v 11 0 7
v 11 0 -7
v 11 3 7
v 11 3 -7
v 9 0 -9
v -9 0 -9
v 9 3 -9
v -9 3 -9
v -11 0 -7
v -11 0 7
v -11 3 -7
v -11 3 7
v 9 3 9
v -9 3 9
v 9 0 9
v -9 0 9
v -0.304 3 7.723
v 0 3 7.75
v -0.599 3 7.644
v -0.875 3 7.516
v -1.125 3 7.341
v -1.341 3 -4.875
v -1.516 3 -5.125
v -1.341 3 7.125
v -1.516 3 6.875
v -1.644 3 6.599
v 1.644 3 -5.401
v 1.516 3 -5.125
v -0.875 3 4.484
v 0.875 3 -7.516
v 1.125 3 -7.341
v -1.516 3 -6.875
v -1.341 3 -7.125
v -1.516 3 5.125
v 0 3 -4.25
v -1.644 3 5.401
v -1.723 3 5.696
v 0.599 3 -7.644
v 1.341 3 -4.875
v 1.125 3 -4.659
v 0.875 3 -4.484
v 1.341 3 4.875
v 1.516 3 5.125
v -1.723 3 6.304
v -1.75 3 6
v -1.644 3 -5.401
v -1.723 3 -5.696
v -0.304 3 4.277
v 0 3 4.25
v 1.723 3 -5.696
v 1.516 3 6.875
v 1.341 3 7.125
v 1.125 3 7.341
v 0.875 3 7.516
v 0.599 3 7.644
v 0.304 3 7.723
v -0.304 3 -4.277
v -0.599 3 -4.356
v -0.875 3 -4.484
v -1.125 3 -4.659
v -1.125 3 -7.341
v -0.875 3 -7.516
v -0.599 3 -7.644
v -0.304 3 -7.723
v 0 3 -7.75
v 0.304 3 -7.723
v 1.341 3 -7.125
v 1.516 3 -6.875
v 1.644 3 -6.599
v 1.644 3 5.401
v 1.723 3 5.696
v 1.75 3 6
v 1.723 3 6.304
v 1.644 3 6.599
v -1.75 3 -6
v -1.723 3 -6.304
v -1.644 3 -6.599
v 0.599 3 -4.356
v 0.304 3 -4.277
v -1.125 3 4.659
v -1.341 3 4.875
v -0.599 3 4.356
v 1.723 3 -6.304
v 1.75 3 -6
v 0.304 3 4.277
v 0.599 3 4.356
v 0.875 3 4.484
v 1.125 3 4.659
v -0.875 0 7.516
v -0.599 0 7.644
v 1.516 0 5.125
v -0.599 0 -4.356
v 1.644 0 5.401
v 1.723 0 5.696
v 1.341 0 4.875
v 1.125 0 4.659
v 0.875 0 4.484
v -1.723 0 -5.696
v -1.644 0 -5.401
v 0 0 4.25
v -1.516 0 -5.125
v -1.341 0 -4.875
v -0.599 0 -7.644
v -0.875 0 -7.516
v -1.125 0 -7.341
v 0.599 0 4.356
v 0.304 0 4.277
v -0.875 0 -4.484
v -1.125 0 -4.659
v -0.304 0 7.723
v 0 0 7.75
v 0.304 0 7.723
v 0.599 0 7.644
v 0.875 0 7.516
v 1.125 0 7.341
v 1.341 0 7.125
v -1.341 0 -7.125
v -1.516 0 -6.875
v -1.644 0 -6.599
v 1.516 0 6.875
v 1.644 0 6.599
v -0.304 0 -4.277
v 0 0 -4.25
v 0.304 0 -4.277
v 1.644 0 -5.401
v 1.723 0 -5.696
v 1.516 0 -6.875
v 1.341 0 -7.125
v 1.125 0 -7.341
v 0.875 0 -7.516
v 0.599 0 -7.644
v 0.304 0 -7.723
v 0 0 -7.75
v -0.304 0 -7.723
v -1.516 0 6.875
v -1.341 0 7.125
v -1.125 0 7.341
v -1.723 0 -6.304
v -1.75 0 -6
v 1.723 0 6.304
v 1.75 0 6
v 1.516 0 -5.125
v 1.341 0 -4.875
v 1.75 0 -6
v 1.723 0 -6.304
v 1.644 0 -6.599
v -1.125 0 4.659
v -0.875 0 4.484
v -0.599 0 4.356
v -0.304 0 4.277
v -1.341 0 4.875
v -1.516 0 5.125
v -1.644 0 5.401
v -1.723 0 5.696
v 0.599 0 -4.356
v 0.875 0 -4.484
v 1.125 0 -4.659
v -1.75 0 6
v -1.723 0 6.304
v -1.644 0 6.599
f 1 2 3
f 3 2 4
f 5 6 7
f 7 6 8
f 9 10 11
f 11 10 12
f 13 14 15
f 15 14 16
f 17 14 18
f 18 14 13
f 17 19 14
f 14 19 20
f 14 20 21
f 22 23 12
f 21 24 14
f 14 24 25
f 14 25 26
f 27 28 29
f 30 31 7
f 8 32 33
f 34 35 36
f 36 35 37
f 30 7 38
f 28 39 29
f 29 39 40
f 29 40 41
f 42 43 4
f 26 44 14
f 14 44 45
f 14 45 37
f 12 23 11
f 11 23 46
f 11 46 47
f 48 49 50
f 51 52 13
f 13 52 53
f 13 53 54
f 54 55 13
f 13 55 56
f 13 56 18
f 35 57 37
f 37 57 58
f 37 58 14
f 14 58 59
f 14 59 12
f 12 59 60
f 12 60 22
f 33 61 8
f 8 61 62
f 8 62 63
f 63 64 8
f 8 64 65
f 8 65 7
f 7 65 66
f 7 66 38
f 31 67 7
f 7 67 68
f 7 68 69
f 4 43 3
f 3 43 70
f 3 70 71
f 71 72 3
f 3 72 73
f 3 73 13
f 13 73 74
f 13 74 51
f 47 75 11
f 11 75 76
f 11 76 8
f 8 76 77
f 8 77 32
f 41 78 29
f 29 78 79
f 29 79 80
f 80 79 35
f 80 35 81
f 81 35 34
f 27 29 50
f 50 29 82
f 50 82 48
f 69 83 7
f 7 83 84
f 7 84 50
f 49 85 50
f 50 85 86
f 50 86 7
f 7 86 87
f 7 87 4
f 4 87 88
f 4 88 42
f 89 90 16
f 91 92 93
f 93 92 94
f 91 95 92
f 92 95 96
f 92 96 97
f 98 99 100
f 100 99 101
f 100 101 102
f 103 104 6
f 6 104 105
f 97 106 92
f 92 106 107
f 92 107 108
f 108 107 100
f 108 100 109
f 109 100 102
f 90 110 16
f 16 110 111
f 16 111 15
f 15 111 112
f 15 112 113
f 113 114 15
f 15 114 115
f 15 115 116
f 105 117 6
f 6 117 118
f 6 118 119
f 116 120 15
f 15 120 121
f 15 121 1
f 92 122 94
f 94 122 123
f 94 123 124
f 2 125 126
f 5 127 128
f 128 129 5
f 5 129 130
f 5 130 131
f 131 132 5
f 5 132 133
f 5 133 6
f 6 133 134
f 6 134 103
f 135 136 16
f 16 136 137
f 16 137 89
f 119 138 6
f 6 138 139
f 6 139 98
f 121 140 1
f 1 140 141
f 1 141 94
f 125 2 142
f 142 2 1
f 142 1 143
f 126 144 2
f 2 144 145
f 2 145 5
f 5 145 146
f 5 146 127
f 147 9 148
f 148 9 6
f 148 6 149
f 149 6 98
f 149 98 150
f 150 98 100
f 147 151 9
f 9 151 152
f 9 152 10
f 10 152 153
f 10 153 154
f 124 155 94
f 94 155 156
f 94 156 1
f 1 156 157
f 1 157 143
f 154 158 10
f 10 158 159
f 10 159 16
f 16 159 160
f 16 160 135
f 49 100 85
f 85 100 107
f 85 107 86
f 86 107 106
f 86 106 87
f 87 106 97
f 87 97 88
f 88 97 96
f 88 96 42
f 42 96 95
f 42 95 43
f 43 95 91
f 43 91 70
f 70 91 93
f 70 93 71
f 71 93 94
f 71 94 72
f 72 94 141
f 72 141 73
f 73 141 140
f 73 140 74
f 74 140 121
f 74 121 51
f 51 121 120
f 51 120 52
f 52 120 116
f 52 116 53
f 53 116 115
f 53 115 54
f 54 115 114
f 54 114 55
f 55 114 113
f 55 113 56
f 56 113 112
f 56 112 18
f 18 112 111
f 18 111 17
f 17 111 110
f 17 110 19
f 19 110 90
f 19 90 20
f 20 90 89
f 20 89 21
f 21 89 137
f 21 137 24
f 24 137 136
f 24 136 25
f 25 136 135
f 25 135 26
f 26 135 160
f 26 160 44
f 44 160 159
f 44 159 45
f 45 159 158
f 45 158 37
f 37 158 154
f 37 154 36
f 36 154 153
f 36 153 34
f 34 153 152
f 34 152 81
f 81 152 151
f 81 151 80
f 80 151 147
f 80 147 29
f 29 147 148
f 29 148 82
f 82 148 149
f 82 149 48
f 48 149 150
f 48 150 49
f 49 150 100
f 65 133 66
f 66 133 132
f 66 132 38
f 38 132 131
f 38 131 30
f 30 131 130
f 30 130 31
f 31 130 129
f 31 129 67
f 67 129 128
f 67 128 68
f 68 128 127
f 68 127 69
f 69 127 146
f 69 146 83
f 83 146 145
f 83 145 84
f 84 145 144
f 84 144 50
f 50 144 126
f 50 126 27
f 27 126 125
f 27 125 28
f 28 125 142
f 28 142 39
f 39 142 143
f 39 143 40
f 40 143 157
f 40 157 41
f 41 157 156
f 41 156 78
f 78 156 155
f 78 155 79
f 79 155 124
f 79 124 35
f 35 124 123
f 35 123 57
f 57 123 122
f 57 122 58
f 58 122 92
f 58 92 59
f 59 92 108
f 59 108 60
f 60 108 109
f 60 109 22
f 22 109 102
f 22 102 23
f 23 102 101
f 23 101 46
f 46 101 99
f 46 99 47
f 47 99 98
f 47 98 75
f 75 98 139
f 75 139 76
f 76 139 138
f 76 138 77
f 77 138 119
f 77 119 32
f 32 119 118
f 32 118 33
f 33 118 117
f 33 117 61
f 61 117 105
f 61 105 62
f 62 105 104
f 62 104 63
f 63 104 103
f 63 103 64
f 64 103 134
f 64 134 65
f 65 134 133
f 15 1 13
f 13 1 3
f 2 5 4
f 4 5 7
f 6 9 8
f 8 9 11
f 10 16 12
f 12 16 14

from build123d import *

# Parameters (mm, degrees)
SKETCH1_W                      = 22
SKETCH1_H                      = 18
BOSS_EXTRUDE1_DEPTH            = 3
CUT_EXTRUDE1_REACH             = 5
SKETCH2_R                      = 1.75
CUT_EXTRUDE1_DIRECTION_2_DEPTH = 1
CHAMFER1_SIZE                  = 2


with BuildPart() as part:
    # Sketch1 → Boss-Extrude1 (new body)
    with BuildSketch(Plane(origin=(0, 0, 0), x_dir=(1, 0, 0), z_dir=(0, 1, 0))):
        Rectangle(SKETCH1_W, SKETCH1_H)
    extrude(amount=BOSS_EXTRUDE1_DEPTH)

    # Sketch2 → Cut-Extrude1 (cut, up to next)
    with BuildSketch(Plane(origin=(0, 3, 0), x_dir=(1, 0, 0), z_dir=(0, 1, 0)), mode=Mode.PRIVATE) as cut_extrude1_sk1:
        with Locations((0, 6)):
            Circle(SKETCH2_R)
    cut_extrude1_tool1 = extrude(cut_extrude1_sk1.sketch, amount=-CUT_EXTRUDE1_REACH, mode=Mode.PRIVATE) & part.part
    add(cut_extrude1_tool1.solids().sort_by_distance((0, 3, -6))[0], mode=Mode.SUBTRACT)
    # Sketch2 → Cut-Extrude1 (cut, up to next)
    with BuildSketch(Plane(origin=(0, 3, 0), x_dir=(1, 0, 0), z_dir=(0, 1, 0)), mode=Mode.PRIVATE) as cut_extrude1_sk2:
        with Locations((0, -6)):
            Circle(SKETCH2_R)
    cut_extrude1_tool2 = extrude(cut_extrude1_sk2.sketch, amount=-CUT_EXTRUDE1_REACH, mode=Mode.PRIVATE) & part.part
    add(cut_extrude1_tool2.solids().sort_by_distance((0, 3, 6))[0], mode=Mode.SUBTRACT)

    # Sketch2 → Cut-Extrude1 direction 2 (cut)
    with BuildSketch(Plane(origin=(0, 3, 0), x_dir=(1, 0, 0), z_dir=(0, 1, 0))):
        with Locations((0, 6)):
            Circle(SKETCH2_R)
        with Locations((0, -6)):
            Circle(SKETCH2_R)
    extrude(amount=CUT_EXTRUDE1_DIRECTION_2_DEPTH, mode=Mode.SUBTRACT)

    # Chamfer1
    chamfer1_edges = [part.edges().sort_by_distance(p)[0] for p in [
        (11, 1.5, 9),
        (-11, 1.5, 9),
        (-11, 1.5, -9),
        (11, 1.5, -9),
    ]]
    chamfer(chamfer1_edges, length=CHAMFER1_SIZE)


solid = part.part
